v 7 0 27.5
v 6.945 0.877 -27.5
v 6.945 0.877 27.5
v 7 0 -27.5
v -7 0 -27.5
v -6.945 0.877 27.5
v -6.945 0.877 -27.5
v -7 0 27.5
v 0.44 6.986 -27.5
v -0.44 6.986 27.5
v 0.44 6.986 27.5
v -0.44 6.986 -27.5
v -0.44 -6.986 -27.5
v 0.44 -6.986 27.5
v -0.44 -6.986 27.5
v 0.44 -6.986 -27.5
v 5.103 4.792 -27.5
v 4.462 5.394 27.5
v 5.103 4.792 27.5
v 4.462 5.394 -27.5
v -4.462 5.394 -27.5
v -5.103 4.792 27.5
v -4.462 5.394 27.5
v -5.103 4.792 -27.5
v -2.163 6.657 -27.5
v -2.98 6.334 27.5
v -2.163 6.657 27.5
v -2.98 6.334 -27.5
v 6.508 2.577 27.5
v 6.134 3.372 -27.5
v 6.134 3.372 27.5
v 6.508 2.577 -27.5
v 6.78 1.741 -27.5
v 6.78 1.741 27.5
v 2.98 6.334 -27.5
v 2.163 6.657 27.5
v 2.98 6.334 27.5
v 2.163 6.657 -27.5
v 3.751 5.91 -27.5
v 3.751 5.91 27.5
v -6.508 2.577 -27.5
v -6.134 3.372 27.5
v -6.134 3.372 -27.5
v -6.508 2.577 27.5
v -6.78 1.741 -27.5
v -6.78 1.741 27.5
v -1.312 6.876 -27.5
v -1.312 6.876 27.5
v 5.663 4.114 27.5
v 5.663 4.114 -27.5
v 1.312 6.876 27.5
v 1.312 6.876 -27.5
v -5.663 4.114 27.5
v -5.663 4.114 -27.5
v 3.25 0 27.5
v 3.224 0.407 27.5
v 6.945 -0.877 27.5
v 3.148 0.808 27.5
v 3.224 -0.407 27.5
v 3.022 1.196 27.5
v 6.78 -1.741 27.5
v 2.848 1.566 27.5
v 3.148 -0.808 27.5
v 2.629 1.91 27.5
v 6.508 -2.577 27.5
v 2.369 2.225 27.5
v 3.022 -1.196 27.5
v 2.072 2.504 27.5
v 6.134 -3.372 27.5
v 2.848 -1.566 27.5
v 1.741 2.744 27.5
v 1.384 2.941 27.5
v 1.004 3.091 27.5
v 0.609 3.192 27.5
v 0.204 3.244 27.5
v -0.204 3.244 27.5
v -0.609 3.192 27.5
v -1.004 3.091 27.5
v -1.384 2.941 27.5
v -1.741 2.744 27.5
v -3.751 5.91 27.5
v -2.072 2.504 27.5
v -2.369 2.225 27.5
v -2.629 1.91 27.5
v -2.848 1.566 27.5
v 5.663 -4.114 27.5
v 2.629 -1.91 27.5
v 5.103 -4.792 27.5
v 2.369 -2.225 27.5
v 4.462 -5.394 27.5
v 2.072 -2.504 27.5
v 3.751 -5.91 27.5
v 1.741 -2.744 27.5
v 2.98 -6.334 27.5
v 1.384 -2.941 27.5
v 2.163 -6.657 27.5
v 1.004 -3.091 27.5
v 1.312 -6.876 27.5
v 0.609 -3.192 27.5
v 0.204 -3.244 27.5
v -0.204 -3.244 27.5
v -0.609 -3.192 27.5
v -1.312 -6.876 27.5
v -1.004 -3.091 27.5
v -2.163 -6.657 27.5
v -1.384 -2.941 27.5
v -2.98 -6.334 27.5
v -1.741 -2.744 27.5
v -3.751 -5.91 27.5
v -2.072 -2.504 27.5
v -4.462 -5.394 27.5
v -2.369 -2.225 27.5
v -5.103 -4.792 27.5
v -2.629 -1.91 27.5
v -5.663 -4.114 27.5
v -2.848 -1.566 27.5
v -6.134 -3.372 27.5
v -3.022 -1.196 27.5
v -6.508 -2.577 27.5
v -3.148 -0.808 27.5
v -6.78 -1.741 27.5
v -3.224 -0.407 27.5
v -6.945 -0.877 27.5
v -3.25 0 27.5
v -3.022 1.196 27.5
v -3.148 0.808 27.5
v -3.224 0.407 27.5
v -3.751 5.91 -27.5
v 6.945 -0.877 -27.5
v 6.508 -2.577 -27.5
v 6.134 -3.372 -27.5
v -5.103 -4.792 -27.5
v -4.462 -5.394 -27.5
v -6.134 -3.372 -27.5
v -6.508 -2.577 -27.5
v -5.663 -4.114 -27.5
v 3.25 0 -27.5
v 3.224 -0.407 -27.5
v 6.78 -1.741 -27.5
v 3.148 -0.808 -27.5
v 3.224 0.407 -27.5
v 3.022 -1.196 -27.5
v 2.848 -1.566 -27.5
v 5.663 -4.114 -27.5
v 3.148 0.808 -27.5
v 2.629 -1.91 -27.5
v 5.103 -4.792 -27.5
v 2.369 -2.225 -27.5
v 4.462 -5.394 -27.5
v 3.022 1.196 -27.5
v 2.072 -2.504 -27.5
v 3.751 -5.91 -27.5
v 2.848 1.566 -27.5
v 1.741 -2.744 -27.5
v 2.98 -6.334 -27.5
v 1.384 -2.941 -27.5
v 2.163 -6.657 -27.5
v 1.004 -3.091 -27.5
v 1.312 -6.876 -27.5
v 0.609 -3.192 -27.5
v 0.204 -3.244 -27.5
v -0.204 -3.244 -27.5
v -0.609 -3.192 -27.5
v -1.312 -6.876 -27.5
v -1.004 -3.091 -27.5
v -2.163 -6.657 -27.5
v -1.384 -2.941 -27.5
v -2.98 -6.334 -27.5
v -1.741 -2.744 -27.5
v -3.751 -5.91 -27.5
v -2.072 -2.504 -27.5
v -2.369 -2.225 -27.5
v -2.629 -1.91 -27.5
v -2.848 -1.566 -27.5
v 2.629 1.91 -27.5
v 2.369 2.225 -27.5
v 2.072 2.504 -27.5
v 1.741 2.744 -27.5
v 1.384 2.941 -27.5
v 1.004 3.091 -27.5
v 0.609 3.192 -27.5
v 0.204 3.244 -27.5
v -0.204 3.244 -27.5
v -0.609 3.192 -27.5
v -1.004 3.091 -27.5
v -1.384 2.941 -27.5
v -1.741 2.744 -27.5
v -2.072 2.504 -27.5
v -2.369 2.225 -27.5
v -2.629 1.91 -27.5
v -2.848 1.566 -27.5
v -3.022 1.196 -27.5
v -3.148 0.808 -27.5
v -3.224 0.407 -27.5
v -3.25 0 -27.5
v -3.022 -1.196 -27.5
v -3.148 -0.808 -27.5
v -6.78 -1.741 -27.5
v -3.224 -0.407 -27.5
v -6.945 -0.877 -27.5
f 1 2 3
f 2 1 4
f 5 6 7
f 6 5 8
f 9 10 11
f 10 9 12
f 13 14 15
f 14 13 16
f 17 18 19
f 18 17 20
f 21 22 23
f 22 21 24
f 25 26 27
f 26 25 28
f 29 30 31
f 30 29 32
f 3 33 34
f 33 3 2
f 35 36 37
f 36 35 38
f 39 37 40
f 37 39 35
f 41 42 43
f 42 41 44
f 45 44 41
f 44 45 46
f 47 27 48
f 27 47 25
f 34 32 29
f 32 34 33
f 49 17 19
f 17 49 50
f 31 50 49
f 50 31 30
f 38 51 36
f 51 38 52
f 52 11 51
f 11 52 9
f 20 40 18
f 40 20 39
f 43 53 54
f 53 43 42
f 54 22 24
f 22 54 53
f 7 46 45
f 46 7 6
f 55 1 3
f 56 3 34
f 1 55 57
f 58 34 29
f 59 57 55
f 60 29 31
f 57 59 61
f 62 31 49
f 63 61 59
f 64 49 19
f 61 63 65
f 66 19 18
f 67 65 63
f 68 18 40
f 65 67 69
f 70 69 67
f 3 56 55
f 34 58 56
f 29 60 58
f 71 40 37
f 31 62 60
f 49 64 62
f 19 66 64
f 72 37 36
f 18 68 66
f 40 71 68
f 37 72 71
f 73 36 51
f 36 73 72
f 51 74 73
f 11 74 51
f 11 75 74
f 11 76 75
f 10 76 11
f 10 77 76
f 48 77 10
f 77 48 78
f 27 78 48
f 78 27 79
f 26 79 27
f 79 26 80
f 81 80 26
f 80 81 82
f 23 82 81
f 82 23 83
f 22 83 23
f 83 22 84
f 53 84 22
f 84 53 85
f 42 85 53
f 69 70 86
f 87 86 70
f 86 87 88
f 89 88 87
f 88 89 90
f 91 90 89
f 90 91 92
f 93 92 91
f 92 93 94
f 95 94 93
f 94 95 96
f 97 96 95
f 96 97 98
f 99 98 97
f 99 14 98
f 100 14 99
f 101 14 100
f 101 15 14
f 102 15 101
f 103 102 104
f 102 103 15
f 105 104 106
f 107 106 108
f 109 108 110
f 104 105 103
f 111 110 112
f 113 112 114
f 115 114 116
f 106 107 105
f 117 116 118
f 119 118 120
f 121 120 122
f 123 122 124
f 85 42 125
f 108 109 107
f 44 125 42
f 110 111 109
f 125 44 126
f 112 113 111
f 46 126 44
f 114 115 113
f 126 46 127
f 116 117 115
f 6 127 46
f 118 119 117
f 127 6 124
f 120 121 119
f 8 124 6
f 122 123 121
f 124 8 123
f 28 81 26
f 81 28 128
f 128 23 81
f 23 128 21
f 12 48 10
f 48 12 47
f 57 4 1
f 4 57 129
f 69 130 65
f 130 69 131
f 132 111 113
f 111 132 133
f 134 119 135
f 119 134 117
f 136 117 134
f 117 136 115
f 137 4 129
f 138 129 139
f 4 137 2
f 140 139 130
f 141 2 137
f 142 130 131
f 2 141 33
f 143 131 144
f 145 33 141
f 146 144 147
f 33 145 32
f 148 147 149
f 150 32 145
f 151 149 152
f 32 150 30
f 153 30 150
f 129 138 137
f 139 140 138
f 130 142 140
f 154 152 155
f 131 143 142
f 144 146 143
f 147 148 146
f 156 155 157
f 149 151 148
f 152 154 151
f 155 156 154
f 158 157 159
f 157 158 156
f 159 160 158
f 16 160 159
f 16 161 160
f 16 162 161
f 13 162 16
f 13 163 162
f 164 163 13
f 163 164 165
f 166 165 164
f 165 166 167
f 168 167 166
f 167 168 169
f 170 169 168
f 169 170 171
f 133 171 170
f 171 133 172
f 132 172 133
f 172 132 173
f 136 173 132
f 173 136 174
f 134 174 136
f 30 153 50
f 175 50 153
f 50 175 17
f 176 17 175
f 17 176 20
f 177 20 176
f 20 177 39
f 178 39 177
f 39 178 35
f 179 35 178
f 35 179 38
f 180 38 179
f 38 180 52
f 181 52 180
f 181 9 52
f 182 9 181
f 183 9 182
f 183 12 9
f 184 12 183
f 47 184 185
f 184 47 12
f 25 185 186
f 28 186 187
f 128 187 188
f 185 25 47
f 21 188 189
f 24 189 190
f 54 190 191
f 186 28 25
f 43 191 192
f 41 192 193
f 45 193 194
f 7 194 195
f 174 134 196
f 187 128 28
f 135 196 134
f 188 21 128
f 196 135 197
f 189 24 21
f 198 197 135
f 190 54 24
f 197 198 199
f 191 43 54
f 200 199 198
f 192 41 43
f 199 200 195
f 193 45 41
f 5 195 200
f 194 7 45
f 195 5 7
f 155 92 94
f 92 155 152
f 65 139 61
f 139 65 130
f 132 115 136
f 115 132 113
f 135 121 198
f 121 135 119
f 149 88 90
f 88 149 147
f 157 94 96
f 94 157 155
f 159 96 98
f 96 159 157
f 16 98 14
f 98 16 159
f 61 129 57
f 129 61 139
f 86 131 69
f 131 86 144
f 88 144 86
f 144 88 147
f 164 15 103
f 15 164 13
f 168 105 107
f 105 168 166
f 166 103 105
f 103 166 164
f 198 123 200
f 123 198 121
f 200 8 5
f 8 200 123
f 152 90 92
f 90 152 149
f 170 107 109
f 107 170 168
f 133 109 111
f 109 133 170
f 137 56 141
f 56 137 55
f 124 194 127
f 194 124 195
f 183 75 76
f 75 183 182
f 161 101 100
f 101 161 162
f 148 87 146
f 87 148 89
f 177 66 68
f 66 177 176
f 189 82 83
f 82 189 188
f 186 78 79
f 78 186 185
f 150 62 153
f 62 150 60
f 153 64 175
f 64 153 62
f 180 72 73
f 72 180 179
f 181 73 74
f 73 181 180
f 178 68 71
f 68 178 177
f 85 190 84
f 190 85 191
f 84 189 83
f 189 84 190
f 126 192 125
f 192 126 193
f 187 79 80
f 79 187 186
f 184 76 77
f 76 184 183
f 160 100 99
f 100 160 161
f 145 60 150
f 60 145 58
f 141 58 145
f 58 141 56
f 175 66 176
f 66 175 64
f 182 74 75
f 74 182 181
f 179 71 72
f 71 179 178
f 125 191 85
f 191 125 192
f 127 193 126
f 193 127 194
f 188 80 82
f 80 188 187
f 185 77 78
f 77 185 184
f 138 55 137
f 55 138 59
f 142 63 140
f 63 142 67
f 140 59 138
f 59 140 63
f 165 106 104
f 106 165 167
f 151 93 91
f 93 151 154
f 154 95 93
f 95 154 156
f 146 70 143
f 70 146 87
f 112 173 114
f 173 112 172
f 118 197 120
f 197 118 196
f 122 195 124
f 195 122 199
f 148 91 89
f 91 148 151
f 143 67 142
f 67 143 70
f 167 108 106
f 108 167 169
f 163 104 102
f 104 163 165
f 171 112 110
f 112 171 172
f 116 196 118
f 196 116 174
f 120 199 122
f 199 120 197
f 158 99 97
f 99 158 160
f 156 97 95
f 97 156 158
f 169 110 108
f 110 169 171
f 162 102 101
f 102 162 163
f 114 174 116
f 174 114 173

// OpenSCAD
$fn = 50;


difference() {
	union() {
		translate(v = [0, 0, -27.5000000000]) {
			cylinder(h = 55, r = 7.0000000000);
		}
	}
	union() {
		translate(v = [0, 0, -100.0000000000]) {
			cylinder(h = 200, r = 3.2500000000);
		}
	}
}
